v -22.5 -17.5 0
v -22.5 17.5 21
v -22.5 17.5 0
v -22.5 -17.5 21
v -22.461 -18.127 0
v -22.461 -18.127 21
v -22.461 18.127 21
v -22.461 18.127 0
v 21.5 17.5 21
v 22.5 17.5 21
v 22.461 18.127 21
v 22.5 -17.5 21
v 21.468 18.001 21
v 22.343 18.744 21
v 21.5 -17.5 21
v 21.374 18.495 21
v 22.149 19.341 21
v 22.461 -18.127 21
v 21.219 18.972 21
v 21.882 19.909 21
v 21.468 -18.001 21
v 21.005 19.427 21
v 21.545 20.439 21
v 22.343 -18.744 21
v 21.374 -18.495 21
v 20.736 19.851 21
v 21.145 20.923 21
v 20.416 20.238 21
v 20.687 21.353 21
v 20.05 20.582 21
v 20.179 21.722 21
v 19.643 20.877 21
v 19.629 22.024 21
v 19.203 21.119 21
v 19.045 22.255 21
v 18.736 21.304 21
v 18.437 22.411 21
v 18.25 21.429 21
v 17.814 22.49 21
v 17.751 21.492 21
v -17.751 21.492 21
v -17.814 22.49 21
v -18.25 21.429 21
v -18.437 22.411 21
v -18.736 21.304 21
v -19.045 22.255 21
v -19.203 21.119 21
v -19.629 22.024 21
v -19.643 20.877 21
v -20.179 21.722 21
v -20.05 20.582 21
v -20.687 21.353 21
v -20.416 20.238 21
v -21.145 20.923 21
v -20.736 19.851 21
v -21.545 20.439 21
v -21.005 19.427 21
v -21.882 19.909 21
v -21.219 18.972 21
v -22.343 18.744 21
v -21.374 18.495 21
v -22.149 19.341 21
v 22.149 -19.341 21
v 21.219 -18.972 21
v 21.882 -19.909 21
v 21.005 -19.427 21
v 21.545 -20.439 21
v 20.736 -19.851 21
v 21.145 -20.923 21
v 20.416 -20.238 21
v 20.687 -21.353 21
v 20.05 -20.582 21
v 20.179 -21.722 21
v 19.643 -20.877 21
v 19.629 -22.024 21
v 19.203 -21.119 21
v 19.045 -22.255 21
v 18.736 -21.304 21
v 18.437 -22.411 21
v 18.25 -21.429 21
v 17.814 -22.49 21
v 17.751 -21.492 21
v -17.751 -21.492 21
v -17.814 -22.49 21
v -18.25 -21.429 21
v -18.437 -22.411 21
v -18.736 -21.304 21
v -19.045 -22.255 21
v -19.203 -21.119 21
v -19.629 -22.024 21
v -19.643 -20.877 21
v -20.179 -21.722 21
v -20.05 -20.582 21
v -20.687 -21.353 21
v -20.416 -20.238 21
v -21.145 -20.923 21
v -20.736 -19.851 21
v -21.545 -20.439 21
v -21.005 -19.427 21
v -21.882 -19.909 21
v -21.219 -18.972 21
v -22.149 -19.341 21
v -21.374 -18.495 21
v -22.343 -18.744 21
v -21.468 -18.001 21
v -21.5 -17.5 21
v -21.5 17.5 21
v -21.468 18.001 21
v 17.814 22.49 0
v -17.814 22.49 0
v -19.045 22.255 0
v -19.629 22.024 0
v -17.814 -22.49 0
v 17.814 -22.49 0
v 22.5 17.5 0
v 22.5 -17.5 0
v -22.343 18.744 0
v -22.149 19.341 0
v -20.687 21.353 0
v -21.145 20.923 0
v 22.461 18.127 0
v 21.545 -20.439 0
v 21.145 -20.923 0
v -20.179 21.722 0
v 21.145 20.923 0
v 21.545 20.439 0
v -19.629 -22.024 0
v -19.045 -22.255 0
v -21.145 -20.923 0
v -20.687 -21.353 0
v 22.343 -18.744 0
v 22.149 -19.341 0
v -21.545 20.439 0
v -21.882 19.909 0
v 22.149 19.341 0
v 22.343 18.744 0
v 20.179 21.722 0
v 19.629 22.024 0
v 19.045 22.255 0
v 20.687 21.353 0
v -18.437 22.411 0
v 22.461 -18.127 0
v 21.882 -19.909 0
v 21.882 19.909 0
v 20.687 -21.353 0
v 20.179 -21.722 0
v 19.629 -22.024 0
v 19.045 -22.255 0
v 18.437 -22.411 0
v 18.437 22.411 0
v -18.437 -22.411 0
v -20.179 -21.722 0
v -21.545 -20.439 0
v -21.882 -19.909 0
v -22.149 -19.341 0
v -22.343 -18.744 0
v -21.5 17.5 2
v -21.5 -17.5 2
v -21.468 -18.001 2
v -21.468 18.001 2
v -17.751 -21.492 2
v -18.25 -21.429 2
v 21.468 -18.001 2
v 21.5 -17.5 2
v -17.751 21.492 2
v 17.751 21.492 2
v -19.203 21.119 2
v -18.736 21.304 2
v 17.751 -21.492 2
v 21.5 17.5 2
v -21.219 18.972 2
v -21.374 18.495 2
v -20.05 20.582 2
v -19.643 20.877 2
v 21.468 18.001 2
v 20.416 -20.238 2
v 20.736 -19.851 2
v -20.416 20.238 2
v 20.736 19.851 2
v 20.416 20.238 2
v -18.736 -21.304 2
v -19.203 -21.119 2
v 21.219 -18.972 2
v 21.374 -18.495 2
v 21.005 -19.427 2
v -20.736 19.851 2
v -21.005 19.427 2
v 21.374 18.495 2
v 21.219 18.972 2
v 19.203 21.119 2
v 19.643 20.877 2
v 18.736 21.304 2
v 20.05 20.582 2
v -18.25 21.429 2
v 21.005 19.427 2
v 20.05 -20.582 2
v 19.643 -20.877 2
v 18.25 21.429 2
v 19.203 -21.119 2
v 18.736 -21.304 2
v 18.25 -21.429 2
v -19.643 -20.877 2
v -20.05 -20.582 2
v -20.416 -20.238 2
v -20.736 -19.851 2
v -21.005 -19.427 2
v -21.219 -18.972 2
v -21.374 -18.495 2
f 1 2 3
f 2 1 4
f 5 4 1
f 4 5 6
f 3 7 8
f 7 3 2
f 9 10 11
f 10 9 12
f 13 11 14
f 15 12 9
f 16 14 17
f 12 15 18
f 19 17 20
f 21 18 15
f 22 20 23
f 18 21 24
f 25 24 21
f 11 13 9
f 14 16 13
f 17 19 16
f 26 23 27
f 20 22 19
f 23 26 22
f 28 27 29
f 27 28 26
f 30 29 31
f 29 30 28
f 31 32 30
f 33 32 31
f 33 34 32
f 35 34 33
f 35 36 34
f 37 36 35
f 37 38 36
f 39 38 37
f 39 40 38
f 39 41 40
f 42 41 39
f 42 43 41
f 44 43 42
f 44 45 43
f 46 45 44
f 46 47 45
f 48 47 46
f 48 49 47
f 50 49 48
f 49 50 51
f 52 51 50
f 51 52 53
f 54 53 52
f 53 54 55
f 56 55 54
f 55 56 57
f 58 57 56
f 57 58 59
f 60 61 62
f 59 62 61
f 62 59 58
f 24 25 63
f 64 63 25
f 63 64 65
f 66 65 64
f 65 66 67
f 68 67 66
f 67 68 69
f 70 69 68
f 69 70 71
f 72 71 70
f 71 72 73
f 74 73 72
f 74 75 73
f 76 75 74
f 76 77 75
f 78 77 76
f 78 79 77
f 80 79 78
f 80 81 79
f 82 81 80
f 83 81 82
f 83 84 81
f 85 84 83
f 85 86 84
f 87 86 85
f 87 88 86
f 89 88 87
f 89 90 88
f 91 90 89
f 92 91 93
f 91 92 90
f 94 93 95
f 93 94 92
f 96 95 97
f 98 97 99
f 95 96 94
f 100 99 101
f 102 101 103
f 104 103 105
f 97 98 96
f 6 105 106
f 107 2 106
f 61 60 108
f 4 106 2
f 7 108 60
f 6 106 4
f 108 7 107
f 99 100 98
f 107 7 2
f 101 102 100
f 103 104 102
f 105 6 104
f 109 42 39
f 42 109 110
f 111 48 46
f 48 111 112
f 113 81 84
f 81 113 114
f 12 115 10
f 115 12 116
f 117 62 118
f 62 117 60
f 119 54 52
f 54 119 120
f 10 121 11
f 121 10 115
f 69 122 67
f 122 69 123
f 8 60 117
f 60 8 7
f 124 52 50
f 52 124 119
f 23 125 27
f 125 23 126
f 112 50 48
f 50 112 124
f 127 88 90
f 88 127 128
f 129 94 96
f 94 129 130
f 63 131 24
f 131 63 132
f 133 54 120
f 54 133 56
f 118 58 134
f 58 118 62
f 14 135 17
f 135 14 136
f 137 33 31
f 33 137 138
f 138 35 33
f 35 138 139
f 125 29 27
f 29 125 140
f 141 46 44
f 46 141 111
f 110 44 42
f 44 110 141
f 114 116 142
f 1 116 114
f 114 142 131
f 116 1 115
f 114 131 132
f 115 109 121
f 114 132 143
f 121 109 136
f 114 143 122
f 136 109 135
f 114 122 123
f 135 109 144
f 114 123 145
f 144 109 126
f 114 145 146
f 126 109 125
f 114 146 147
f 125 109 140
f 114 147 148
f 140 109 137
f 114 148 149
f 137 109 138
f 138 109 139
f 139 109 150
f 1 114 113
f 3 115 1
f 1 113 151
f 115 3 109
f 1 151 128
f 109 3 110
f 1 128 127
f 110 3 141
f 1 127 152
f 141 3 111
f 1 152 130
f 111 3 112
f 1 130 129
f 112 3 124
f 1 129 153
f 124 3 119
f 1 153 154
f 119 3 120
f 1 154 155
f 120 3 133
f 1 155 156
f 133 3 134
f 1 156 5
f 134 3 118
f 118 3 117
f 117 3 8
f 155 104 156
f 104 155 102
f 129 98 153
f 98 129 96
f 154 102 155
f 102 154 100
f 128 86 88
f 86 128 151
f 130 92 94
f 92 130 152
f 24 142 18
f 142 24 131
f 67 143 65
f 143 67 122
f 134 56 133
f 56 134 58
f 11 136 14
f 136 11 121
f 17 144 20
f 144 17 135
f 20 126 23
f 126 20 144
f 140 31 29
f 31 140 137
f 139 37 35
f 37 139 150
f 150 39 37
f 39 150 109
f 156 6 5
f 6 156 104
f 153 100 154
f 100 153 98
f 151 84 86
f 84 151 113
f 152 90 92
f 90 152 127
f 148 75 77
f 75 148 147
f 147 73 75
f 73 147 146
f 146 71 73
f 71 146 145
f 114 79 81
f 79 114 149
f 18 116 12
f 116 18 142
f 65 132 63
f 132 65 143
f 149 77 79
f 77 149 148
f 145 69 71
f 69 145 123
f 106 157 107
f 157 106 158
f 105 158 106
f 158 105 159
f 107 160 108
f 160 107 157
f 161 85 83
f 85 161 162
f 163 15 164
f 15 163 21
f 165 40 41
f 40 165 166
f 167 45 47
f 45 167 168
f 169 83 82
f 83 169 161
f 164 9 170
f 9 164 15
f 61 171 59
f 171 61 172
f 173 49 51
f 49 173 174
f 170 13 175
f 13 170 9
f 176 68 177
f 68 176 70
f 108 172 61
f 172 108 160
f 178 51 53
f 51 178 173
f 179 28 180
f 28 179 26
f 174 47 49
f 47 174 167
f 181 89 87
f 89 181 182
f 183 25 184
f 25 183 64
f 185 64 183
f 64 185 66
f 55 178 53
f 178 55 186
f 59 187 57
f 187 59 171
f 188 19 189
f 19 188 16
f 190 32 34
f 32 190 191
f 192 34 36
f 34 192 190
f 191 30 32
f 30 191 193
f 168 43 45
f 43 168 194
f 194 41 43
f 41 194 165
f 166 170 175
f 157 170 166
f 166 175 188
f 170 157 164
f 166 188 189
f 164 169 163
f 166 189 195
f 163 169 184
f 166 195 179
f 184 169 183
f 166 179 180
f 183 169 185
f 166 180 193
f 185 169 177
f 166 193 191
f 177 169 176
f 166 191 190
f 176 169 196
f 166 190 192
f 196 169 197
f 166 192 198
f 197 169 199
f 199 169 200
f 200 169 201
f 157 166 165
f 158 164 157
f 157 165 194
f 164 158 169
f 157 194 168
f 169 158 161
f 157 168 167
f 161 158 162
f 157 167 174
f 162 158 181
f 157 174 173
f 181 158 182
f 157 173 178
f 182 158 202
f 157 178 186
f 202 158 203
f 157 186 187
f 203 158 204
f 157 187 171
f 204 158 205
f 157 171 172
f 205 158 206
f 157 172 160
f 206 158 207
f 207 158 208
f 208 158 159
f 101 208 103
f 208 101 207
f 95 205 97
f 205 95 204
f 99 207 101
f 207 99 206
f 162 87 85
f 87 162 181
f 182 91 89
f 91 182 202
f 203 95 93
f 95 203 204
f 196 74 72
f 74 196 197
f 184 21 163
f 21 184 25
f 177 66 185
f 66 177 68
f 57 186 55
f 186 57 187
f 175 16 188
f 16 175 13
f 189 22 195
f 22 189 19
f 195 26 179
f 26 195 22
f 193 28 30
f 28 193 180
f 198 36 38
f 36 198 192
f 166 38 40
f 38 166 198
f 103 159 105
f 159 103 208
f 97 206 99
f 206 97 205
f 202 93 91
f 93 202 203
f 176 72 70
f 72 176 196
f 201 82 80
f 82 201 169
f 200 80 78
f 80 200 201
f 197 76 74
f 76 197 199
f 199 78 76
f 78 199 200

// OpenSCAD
$fn = 50;


difference() {
	union() {
		hull() {
			translate(v = [-17.5000000000, 17.5000000000, 0]) {
				cylinder(h = 21, r = 5);
			}
			translate(v = [17.5000000000, 17.5000000000, 0]) {
				cylinder(h = 21, r = 5);
			}
			translate(v = [-17.5000000000, -17.5000000000, 0]) {
				cylinder(h = 21, r = 5);
			}
			translate(v = [17.5000000000, -17.5000000000, 0]) {
				cylinder(h = 21, r = 5);
			}
		}
	}
	union() {
		translate(v = [0, 0, 2]) {
			hull() {
				translate(v = [-17.5000000000, 17.5000000000, 0]) {
					cylinder(h = 19, r = 4);
				}
				translate(v = [17.5000000000, 17.5000000000, 0]) {
					cylinder(h = 19, r = 4);
				}
				translate(v = [-17.5000000000, -17.5000000000, 0]) {
					cylinder(h = 19, r = 4);
				}
				translate(v = [17.5000000000, -17.5000000000, 0]) {
					cylinder(h = 19, r = 4);
				}
			}
		}
	}
}
